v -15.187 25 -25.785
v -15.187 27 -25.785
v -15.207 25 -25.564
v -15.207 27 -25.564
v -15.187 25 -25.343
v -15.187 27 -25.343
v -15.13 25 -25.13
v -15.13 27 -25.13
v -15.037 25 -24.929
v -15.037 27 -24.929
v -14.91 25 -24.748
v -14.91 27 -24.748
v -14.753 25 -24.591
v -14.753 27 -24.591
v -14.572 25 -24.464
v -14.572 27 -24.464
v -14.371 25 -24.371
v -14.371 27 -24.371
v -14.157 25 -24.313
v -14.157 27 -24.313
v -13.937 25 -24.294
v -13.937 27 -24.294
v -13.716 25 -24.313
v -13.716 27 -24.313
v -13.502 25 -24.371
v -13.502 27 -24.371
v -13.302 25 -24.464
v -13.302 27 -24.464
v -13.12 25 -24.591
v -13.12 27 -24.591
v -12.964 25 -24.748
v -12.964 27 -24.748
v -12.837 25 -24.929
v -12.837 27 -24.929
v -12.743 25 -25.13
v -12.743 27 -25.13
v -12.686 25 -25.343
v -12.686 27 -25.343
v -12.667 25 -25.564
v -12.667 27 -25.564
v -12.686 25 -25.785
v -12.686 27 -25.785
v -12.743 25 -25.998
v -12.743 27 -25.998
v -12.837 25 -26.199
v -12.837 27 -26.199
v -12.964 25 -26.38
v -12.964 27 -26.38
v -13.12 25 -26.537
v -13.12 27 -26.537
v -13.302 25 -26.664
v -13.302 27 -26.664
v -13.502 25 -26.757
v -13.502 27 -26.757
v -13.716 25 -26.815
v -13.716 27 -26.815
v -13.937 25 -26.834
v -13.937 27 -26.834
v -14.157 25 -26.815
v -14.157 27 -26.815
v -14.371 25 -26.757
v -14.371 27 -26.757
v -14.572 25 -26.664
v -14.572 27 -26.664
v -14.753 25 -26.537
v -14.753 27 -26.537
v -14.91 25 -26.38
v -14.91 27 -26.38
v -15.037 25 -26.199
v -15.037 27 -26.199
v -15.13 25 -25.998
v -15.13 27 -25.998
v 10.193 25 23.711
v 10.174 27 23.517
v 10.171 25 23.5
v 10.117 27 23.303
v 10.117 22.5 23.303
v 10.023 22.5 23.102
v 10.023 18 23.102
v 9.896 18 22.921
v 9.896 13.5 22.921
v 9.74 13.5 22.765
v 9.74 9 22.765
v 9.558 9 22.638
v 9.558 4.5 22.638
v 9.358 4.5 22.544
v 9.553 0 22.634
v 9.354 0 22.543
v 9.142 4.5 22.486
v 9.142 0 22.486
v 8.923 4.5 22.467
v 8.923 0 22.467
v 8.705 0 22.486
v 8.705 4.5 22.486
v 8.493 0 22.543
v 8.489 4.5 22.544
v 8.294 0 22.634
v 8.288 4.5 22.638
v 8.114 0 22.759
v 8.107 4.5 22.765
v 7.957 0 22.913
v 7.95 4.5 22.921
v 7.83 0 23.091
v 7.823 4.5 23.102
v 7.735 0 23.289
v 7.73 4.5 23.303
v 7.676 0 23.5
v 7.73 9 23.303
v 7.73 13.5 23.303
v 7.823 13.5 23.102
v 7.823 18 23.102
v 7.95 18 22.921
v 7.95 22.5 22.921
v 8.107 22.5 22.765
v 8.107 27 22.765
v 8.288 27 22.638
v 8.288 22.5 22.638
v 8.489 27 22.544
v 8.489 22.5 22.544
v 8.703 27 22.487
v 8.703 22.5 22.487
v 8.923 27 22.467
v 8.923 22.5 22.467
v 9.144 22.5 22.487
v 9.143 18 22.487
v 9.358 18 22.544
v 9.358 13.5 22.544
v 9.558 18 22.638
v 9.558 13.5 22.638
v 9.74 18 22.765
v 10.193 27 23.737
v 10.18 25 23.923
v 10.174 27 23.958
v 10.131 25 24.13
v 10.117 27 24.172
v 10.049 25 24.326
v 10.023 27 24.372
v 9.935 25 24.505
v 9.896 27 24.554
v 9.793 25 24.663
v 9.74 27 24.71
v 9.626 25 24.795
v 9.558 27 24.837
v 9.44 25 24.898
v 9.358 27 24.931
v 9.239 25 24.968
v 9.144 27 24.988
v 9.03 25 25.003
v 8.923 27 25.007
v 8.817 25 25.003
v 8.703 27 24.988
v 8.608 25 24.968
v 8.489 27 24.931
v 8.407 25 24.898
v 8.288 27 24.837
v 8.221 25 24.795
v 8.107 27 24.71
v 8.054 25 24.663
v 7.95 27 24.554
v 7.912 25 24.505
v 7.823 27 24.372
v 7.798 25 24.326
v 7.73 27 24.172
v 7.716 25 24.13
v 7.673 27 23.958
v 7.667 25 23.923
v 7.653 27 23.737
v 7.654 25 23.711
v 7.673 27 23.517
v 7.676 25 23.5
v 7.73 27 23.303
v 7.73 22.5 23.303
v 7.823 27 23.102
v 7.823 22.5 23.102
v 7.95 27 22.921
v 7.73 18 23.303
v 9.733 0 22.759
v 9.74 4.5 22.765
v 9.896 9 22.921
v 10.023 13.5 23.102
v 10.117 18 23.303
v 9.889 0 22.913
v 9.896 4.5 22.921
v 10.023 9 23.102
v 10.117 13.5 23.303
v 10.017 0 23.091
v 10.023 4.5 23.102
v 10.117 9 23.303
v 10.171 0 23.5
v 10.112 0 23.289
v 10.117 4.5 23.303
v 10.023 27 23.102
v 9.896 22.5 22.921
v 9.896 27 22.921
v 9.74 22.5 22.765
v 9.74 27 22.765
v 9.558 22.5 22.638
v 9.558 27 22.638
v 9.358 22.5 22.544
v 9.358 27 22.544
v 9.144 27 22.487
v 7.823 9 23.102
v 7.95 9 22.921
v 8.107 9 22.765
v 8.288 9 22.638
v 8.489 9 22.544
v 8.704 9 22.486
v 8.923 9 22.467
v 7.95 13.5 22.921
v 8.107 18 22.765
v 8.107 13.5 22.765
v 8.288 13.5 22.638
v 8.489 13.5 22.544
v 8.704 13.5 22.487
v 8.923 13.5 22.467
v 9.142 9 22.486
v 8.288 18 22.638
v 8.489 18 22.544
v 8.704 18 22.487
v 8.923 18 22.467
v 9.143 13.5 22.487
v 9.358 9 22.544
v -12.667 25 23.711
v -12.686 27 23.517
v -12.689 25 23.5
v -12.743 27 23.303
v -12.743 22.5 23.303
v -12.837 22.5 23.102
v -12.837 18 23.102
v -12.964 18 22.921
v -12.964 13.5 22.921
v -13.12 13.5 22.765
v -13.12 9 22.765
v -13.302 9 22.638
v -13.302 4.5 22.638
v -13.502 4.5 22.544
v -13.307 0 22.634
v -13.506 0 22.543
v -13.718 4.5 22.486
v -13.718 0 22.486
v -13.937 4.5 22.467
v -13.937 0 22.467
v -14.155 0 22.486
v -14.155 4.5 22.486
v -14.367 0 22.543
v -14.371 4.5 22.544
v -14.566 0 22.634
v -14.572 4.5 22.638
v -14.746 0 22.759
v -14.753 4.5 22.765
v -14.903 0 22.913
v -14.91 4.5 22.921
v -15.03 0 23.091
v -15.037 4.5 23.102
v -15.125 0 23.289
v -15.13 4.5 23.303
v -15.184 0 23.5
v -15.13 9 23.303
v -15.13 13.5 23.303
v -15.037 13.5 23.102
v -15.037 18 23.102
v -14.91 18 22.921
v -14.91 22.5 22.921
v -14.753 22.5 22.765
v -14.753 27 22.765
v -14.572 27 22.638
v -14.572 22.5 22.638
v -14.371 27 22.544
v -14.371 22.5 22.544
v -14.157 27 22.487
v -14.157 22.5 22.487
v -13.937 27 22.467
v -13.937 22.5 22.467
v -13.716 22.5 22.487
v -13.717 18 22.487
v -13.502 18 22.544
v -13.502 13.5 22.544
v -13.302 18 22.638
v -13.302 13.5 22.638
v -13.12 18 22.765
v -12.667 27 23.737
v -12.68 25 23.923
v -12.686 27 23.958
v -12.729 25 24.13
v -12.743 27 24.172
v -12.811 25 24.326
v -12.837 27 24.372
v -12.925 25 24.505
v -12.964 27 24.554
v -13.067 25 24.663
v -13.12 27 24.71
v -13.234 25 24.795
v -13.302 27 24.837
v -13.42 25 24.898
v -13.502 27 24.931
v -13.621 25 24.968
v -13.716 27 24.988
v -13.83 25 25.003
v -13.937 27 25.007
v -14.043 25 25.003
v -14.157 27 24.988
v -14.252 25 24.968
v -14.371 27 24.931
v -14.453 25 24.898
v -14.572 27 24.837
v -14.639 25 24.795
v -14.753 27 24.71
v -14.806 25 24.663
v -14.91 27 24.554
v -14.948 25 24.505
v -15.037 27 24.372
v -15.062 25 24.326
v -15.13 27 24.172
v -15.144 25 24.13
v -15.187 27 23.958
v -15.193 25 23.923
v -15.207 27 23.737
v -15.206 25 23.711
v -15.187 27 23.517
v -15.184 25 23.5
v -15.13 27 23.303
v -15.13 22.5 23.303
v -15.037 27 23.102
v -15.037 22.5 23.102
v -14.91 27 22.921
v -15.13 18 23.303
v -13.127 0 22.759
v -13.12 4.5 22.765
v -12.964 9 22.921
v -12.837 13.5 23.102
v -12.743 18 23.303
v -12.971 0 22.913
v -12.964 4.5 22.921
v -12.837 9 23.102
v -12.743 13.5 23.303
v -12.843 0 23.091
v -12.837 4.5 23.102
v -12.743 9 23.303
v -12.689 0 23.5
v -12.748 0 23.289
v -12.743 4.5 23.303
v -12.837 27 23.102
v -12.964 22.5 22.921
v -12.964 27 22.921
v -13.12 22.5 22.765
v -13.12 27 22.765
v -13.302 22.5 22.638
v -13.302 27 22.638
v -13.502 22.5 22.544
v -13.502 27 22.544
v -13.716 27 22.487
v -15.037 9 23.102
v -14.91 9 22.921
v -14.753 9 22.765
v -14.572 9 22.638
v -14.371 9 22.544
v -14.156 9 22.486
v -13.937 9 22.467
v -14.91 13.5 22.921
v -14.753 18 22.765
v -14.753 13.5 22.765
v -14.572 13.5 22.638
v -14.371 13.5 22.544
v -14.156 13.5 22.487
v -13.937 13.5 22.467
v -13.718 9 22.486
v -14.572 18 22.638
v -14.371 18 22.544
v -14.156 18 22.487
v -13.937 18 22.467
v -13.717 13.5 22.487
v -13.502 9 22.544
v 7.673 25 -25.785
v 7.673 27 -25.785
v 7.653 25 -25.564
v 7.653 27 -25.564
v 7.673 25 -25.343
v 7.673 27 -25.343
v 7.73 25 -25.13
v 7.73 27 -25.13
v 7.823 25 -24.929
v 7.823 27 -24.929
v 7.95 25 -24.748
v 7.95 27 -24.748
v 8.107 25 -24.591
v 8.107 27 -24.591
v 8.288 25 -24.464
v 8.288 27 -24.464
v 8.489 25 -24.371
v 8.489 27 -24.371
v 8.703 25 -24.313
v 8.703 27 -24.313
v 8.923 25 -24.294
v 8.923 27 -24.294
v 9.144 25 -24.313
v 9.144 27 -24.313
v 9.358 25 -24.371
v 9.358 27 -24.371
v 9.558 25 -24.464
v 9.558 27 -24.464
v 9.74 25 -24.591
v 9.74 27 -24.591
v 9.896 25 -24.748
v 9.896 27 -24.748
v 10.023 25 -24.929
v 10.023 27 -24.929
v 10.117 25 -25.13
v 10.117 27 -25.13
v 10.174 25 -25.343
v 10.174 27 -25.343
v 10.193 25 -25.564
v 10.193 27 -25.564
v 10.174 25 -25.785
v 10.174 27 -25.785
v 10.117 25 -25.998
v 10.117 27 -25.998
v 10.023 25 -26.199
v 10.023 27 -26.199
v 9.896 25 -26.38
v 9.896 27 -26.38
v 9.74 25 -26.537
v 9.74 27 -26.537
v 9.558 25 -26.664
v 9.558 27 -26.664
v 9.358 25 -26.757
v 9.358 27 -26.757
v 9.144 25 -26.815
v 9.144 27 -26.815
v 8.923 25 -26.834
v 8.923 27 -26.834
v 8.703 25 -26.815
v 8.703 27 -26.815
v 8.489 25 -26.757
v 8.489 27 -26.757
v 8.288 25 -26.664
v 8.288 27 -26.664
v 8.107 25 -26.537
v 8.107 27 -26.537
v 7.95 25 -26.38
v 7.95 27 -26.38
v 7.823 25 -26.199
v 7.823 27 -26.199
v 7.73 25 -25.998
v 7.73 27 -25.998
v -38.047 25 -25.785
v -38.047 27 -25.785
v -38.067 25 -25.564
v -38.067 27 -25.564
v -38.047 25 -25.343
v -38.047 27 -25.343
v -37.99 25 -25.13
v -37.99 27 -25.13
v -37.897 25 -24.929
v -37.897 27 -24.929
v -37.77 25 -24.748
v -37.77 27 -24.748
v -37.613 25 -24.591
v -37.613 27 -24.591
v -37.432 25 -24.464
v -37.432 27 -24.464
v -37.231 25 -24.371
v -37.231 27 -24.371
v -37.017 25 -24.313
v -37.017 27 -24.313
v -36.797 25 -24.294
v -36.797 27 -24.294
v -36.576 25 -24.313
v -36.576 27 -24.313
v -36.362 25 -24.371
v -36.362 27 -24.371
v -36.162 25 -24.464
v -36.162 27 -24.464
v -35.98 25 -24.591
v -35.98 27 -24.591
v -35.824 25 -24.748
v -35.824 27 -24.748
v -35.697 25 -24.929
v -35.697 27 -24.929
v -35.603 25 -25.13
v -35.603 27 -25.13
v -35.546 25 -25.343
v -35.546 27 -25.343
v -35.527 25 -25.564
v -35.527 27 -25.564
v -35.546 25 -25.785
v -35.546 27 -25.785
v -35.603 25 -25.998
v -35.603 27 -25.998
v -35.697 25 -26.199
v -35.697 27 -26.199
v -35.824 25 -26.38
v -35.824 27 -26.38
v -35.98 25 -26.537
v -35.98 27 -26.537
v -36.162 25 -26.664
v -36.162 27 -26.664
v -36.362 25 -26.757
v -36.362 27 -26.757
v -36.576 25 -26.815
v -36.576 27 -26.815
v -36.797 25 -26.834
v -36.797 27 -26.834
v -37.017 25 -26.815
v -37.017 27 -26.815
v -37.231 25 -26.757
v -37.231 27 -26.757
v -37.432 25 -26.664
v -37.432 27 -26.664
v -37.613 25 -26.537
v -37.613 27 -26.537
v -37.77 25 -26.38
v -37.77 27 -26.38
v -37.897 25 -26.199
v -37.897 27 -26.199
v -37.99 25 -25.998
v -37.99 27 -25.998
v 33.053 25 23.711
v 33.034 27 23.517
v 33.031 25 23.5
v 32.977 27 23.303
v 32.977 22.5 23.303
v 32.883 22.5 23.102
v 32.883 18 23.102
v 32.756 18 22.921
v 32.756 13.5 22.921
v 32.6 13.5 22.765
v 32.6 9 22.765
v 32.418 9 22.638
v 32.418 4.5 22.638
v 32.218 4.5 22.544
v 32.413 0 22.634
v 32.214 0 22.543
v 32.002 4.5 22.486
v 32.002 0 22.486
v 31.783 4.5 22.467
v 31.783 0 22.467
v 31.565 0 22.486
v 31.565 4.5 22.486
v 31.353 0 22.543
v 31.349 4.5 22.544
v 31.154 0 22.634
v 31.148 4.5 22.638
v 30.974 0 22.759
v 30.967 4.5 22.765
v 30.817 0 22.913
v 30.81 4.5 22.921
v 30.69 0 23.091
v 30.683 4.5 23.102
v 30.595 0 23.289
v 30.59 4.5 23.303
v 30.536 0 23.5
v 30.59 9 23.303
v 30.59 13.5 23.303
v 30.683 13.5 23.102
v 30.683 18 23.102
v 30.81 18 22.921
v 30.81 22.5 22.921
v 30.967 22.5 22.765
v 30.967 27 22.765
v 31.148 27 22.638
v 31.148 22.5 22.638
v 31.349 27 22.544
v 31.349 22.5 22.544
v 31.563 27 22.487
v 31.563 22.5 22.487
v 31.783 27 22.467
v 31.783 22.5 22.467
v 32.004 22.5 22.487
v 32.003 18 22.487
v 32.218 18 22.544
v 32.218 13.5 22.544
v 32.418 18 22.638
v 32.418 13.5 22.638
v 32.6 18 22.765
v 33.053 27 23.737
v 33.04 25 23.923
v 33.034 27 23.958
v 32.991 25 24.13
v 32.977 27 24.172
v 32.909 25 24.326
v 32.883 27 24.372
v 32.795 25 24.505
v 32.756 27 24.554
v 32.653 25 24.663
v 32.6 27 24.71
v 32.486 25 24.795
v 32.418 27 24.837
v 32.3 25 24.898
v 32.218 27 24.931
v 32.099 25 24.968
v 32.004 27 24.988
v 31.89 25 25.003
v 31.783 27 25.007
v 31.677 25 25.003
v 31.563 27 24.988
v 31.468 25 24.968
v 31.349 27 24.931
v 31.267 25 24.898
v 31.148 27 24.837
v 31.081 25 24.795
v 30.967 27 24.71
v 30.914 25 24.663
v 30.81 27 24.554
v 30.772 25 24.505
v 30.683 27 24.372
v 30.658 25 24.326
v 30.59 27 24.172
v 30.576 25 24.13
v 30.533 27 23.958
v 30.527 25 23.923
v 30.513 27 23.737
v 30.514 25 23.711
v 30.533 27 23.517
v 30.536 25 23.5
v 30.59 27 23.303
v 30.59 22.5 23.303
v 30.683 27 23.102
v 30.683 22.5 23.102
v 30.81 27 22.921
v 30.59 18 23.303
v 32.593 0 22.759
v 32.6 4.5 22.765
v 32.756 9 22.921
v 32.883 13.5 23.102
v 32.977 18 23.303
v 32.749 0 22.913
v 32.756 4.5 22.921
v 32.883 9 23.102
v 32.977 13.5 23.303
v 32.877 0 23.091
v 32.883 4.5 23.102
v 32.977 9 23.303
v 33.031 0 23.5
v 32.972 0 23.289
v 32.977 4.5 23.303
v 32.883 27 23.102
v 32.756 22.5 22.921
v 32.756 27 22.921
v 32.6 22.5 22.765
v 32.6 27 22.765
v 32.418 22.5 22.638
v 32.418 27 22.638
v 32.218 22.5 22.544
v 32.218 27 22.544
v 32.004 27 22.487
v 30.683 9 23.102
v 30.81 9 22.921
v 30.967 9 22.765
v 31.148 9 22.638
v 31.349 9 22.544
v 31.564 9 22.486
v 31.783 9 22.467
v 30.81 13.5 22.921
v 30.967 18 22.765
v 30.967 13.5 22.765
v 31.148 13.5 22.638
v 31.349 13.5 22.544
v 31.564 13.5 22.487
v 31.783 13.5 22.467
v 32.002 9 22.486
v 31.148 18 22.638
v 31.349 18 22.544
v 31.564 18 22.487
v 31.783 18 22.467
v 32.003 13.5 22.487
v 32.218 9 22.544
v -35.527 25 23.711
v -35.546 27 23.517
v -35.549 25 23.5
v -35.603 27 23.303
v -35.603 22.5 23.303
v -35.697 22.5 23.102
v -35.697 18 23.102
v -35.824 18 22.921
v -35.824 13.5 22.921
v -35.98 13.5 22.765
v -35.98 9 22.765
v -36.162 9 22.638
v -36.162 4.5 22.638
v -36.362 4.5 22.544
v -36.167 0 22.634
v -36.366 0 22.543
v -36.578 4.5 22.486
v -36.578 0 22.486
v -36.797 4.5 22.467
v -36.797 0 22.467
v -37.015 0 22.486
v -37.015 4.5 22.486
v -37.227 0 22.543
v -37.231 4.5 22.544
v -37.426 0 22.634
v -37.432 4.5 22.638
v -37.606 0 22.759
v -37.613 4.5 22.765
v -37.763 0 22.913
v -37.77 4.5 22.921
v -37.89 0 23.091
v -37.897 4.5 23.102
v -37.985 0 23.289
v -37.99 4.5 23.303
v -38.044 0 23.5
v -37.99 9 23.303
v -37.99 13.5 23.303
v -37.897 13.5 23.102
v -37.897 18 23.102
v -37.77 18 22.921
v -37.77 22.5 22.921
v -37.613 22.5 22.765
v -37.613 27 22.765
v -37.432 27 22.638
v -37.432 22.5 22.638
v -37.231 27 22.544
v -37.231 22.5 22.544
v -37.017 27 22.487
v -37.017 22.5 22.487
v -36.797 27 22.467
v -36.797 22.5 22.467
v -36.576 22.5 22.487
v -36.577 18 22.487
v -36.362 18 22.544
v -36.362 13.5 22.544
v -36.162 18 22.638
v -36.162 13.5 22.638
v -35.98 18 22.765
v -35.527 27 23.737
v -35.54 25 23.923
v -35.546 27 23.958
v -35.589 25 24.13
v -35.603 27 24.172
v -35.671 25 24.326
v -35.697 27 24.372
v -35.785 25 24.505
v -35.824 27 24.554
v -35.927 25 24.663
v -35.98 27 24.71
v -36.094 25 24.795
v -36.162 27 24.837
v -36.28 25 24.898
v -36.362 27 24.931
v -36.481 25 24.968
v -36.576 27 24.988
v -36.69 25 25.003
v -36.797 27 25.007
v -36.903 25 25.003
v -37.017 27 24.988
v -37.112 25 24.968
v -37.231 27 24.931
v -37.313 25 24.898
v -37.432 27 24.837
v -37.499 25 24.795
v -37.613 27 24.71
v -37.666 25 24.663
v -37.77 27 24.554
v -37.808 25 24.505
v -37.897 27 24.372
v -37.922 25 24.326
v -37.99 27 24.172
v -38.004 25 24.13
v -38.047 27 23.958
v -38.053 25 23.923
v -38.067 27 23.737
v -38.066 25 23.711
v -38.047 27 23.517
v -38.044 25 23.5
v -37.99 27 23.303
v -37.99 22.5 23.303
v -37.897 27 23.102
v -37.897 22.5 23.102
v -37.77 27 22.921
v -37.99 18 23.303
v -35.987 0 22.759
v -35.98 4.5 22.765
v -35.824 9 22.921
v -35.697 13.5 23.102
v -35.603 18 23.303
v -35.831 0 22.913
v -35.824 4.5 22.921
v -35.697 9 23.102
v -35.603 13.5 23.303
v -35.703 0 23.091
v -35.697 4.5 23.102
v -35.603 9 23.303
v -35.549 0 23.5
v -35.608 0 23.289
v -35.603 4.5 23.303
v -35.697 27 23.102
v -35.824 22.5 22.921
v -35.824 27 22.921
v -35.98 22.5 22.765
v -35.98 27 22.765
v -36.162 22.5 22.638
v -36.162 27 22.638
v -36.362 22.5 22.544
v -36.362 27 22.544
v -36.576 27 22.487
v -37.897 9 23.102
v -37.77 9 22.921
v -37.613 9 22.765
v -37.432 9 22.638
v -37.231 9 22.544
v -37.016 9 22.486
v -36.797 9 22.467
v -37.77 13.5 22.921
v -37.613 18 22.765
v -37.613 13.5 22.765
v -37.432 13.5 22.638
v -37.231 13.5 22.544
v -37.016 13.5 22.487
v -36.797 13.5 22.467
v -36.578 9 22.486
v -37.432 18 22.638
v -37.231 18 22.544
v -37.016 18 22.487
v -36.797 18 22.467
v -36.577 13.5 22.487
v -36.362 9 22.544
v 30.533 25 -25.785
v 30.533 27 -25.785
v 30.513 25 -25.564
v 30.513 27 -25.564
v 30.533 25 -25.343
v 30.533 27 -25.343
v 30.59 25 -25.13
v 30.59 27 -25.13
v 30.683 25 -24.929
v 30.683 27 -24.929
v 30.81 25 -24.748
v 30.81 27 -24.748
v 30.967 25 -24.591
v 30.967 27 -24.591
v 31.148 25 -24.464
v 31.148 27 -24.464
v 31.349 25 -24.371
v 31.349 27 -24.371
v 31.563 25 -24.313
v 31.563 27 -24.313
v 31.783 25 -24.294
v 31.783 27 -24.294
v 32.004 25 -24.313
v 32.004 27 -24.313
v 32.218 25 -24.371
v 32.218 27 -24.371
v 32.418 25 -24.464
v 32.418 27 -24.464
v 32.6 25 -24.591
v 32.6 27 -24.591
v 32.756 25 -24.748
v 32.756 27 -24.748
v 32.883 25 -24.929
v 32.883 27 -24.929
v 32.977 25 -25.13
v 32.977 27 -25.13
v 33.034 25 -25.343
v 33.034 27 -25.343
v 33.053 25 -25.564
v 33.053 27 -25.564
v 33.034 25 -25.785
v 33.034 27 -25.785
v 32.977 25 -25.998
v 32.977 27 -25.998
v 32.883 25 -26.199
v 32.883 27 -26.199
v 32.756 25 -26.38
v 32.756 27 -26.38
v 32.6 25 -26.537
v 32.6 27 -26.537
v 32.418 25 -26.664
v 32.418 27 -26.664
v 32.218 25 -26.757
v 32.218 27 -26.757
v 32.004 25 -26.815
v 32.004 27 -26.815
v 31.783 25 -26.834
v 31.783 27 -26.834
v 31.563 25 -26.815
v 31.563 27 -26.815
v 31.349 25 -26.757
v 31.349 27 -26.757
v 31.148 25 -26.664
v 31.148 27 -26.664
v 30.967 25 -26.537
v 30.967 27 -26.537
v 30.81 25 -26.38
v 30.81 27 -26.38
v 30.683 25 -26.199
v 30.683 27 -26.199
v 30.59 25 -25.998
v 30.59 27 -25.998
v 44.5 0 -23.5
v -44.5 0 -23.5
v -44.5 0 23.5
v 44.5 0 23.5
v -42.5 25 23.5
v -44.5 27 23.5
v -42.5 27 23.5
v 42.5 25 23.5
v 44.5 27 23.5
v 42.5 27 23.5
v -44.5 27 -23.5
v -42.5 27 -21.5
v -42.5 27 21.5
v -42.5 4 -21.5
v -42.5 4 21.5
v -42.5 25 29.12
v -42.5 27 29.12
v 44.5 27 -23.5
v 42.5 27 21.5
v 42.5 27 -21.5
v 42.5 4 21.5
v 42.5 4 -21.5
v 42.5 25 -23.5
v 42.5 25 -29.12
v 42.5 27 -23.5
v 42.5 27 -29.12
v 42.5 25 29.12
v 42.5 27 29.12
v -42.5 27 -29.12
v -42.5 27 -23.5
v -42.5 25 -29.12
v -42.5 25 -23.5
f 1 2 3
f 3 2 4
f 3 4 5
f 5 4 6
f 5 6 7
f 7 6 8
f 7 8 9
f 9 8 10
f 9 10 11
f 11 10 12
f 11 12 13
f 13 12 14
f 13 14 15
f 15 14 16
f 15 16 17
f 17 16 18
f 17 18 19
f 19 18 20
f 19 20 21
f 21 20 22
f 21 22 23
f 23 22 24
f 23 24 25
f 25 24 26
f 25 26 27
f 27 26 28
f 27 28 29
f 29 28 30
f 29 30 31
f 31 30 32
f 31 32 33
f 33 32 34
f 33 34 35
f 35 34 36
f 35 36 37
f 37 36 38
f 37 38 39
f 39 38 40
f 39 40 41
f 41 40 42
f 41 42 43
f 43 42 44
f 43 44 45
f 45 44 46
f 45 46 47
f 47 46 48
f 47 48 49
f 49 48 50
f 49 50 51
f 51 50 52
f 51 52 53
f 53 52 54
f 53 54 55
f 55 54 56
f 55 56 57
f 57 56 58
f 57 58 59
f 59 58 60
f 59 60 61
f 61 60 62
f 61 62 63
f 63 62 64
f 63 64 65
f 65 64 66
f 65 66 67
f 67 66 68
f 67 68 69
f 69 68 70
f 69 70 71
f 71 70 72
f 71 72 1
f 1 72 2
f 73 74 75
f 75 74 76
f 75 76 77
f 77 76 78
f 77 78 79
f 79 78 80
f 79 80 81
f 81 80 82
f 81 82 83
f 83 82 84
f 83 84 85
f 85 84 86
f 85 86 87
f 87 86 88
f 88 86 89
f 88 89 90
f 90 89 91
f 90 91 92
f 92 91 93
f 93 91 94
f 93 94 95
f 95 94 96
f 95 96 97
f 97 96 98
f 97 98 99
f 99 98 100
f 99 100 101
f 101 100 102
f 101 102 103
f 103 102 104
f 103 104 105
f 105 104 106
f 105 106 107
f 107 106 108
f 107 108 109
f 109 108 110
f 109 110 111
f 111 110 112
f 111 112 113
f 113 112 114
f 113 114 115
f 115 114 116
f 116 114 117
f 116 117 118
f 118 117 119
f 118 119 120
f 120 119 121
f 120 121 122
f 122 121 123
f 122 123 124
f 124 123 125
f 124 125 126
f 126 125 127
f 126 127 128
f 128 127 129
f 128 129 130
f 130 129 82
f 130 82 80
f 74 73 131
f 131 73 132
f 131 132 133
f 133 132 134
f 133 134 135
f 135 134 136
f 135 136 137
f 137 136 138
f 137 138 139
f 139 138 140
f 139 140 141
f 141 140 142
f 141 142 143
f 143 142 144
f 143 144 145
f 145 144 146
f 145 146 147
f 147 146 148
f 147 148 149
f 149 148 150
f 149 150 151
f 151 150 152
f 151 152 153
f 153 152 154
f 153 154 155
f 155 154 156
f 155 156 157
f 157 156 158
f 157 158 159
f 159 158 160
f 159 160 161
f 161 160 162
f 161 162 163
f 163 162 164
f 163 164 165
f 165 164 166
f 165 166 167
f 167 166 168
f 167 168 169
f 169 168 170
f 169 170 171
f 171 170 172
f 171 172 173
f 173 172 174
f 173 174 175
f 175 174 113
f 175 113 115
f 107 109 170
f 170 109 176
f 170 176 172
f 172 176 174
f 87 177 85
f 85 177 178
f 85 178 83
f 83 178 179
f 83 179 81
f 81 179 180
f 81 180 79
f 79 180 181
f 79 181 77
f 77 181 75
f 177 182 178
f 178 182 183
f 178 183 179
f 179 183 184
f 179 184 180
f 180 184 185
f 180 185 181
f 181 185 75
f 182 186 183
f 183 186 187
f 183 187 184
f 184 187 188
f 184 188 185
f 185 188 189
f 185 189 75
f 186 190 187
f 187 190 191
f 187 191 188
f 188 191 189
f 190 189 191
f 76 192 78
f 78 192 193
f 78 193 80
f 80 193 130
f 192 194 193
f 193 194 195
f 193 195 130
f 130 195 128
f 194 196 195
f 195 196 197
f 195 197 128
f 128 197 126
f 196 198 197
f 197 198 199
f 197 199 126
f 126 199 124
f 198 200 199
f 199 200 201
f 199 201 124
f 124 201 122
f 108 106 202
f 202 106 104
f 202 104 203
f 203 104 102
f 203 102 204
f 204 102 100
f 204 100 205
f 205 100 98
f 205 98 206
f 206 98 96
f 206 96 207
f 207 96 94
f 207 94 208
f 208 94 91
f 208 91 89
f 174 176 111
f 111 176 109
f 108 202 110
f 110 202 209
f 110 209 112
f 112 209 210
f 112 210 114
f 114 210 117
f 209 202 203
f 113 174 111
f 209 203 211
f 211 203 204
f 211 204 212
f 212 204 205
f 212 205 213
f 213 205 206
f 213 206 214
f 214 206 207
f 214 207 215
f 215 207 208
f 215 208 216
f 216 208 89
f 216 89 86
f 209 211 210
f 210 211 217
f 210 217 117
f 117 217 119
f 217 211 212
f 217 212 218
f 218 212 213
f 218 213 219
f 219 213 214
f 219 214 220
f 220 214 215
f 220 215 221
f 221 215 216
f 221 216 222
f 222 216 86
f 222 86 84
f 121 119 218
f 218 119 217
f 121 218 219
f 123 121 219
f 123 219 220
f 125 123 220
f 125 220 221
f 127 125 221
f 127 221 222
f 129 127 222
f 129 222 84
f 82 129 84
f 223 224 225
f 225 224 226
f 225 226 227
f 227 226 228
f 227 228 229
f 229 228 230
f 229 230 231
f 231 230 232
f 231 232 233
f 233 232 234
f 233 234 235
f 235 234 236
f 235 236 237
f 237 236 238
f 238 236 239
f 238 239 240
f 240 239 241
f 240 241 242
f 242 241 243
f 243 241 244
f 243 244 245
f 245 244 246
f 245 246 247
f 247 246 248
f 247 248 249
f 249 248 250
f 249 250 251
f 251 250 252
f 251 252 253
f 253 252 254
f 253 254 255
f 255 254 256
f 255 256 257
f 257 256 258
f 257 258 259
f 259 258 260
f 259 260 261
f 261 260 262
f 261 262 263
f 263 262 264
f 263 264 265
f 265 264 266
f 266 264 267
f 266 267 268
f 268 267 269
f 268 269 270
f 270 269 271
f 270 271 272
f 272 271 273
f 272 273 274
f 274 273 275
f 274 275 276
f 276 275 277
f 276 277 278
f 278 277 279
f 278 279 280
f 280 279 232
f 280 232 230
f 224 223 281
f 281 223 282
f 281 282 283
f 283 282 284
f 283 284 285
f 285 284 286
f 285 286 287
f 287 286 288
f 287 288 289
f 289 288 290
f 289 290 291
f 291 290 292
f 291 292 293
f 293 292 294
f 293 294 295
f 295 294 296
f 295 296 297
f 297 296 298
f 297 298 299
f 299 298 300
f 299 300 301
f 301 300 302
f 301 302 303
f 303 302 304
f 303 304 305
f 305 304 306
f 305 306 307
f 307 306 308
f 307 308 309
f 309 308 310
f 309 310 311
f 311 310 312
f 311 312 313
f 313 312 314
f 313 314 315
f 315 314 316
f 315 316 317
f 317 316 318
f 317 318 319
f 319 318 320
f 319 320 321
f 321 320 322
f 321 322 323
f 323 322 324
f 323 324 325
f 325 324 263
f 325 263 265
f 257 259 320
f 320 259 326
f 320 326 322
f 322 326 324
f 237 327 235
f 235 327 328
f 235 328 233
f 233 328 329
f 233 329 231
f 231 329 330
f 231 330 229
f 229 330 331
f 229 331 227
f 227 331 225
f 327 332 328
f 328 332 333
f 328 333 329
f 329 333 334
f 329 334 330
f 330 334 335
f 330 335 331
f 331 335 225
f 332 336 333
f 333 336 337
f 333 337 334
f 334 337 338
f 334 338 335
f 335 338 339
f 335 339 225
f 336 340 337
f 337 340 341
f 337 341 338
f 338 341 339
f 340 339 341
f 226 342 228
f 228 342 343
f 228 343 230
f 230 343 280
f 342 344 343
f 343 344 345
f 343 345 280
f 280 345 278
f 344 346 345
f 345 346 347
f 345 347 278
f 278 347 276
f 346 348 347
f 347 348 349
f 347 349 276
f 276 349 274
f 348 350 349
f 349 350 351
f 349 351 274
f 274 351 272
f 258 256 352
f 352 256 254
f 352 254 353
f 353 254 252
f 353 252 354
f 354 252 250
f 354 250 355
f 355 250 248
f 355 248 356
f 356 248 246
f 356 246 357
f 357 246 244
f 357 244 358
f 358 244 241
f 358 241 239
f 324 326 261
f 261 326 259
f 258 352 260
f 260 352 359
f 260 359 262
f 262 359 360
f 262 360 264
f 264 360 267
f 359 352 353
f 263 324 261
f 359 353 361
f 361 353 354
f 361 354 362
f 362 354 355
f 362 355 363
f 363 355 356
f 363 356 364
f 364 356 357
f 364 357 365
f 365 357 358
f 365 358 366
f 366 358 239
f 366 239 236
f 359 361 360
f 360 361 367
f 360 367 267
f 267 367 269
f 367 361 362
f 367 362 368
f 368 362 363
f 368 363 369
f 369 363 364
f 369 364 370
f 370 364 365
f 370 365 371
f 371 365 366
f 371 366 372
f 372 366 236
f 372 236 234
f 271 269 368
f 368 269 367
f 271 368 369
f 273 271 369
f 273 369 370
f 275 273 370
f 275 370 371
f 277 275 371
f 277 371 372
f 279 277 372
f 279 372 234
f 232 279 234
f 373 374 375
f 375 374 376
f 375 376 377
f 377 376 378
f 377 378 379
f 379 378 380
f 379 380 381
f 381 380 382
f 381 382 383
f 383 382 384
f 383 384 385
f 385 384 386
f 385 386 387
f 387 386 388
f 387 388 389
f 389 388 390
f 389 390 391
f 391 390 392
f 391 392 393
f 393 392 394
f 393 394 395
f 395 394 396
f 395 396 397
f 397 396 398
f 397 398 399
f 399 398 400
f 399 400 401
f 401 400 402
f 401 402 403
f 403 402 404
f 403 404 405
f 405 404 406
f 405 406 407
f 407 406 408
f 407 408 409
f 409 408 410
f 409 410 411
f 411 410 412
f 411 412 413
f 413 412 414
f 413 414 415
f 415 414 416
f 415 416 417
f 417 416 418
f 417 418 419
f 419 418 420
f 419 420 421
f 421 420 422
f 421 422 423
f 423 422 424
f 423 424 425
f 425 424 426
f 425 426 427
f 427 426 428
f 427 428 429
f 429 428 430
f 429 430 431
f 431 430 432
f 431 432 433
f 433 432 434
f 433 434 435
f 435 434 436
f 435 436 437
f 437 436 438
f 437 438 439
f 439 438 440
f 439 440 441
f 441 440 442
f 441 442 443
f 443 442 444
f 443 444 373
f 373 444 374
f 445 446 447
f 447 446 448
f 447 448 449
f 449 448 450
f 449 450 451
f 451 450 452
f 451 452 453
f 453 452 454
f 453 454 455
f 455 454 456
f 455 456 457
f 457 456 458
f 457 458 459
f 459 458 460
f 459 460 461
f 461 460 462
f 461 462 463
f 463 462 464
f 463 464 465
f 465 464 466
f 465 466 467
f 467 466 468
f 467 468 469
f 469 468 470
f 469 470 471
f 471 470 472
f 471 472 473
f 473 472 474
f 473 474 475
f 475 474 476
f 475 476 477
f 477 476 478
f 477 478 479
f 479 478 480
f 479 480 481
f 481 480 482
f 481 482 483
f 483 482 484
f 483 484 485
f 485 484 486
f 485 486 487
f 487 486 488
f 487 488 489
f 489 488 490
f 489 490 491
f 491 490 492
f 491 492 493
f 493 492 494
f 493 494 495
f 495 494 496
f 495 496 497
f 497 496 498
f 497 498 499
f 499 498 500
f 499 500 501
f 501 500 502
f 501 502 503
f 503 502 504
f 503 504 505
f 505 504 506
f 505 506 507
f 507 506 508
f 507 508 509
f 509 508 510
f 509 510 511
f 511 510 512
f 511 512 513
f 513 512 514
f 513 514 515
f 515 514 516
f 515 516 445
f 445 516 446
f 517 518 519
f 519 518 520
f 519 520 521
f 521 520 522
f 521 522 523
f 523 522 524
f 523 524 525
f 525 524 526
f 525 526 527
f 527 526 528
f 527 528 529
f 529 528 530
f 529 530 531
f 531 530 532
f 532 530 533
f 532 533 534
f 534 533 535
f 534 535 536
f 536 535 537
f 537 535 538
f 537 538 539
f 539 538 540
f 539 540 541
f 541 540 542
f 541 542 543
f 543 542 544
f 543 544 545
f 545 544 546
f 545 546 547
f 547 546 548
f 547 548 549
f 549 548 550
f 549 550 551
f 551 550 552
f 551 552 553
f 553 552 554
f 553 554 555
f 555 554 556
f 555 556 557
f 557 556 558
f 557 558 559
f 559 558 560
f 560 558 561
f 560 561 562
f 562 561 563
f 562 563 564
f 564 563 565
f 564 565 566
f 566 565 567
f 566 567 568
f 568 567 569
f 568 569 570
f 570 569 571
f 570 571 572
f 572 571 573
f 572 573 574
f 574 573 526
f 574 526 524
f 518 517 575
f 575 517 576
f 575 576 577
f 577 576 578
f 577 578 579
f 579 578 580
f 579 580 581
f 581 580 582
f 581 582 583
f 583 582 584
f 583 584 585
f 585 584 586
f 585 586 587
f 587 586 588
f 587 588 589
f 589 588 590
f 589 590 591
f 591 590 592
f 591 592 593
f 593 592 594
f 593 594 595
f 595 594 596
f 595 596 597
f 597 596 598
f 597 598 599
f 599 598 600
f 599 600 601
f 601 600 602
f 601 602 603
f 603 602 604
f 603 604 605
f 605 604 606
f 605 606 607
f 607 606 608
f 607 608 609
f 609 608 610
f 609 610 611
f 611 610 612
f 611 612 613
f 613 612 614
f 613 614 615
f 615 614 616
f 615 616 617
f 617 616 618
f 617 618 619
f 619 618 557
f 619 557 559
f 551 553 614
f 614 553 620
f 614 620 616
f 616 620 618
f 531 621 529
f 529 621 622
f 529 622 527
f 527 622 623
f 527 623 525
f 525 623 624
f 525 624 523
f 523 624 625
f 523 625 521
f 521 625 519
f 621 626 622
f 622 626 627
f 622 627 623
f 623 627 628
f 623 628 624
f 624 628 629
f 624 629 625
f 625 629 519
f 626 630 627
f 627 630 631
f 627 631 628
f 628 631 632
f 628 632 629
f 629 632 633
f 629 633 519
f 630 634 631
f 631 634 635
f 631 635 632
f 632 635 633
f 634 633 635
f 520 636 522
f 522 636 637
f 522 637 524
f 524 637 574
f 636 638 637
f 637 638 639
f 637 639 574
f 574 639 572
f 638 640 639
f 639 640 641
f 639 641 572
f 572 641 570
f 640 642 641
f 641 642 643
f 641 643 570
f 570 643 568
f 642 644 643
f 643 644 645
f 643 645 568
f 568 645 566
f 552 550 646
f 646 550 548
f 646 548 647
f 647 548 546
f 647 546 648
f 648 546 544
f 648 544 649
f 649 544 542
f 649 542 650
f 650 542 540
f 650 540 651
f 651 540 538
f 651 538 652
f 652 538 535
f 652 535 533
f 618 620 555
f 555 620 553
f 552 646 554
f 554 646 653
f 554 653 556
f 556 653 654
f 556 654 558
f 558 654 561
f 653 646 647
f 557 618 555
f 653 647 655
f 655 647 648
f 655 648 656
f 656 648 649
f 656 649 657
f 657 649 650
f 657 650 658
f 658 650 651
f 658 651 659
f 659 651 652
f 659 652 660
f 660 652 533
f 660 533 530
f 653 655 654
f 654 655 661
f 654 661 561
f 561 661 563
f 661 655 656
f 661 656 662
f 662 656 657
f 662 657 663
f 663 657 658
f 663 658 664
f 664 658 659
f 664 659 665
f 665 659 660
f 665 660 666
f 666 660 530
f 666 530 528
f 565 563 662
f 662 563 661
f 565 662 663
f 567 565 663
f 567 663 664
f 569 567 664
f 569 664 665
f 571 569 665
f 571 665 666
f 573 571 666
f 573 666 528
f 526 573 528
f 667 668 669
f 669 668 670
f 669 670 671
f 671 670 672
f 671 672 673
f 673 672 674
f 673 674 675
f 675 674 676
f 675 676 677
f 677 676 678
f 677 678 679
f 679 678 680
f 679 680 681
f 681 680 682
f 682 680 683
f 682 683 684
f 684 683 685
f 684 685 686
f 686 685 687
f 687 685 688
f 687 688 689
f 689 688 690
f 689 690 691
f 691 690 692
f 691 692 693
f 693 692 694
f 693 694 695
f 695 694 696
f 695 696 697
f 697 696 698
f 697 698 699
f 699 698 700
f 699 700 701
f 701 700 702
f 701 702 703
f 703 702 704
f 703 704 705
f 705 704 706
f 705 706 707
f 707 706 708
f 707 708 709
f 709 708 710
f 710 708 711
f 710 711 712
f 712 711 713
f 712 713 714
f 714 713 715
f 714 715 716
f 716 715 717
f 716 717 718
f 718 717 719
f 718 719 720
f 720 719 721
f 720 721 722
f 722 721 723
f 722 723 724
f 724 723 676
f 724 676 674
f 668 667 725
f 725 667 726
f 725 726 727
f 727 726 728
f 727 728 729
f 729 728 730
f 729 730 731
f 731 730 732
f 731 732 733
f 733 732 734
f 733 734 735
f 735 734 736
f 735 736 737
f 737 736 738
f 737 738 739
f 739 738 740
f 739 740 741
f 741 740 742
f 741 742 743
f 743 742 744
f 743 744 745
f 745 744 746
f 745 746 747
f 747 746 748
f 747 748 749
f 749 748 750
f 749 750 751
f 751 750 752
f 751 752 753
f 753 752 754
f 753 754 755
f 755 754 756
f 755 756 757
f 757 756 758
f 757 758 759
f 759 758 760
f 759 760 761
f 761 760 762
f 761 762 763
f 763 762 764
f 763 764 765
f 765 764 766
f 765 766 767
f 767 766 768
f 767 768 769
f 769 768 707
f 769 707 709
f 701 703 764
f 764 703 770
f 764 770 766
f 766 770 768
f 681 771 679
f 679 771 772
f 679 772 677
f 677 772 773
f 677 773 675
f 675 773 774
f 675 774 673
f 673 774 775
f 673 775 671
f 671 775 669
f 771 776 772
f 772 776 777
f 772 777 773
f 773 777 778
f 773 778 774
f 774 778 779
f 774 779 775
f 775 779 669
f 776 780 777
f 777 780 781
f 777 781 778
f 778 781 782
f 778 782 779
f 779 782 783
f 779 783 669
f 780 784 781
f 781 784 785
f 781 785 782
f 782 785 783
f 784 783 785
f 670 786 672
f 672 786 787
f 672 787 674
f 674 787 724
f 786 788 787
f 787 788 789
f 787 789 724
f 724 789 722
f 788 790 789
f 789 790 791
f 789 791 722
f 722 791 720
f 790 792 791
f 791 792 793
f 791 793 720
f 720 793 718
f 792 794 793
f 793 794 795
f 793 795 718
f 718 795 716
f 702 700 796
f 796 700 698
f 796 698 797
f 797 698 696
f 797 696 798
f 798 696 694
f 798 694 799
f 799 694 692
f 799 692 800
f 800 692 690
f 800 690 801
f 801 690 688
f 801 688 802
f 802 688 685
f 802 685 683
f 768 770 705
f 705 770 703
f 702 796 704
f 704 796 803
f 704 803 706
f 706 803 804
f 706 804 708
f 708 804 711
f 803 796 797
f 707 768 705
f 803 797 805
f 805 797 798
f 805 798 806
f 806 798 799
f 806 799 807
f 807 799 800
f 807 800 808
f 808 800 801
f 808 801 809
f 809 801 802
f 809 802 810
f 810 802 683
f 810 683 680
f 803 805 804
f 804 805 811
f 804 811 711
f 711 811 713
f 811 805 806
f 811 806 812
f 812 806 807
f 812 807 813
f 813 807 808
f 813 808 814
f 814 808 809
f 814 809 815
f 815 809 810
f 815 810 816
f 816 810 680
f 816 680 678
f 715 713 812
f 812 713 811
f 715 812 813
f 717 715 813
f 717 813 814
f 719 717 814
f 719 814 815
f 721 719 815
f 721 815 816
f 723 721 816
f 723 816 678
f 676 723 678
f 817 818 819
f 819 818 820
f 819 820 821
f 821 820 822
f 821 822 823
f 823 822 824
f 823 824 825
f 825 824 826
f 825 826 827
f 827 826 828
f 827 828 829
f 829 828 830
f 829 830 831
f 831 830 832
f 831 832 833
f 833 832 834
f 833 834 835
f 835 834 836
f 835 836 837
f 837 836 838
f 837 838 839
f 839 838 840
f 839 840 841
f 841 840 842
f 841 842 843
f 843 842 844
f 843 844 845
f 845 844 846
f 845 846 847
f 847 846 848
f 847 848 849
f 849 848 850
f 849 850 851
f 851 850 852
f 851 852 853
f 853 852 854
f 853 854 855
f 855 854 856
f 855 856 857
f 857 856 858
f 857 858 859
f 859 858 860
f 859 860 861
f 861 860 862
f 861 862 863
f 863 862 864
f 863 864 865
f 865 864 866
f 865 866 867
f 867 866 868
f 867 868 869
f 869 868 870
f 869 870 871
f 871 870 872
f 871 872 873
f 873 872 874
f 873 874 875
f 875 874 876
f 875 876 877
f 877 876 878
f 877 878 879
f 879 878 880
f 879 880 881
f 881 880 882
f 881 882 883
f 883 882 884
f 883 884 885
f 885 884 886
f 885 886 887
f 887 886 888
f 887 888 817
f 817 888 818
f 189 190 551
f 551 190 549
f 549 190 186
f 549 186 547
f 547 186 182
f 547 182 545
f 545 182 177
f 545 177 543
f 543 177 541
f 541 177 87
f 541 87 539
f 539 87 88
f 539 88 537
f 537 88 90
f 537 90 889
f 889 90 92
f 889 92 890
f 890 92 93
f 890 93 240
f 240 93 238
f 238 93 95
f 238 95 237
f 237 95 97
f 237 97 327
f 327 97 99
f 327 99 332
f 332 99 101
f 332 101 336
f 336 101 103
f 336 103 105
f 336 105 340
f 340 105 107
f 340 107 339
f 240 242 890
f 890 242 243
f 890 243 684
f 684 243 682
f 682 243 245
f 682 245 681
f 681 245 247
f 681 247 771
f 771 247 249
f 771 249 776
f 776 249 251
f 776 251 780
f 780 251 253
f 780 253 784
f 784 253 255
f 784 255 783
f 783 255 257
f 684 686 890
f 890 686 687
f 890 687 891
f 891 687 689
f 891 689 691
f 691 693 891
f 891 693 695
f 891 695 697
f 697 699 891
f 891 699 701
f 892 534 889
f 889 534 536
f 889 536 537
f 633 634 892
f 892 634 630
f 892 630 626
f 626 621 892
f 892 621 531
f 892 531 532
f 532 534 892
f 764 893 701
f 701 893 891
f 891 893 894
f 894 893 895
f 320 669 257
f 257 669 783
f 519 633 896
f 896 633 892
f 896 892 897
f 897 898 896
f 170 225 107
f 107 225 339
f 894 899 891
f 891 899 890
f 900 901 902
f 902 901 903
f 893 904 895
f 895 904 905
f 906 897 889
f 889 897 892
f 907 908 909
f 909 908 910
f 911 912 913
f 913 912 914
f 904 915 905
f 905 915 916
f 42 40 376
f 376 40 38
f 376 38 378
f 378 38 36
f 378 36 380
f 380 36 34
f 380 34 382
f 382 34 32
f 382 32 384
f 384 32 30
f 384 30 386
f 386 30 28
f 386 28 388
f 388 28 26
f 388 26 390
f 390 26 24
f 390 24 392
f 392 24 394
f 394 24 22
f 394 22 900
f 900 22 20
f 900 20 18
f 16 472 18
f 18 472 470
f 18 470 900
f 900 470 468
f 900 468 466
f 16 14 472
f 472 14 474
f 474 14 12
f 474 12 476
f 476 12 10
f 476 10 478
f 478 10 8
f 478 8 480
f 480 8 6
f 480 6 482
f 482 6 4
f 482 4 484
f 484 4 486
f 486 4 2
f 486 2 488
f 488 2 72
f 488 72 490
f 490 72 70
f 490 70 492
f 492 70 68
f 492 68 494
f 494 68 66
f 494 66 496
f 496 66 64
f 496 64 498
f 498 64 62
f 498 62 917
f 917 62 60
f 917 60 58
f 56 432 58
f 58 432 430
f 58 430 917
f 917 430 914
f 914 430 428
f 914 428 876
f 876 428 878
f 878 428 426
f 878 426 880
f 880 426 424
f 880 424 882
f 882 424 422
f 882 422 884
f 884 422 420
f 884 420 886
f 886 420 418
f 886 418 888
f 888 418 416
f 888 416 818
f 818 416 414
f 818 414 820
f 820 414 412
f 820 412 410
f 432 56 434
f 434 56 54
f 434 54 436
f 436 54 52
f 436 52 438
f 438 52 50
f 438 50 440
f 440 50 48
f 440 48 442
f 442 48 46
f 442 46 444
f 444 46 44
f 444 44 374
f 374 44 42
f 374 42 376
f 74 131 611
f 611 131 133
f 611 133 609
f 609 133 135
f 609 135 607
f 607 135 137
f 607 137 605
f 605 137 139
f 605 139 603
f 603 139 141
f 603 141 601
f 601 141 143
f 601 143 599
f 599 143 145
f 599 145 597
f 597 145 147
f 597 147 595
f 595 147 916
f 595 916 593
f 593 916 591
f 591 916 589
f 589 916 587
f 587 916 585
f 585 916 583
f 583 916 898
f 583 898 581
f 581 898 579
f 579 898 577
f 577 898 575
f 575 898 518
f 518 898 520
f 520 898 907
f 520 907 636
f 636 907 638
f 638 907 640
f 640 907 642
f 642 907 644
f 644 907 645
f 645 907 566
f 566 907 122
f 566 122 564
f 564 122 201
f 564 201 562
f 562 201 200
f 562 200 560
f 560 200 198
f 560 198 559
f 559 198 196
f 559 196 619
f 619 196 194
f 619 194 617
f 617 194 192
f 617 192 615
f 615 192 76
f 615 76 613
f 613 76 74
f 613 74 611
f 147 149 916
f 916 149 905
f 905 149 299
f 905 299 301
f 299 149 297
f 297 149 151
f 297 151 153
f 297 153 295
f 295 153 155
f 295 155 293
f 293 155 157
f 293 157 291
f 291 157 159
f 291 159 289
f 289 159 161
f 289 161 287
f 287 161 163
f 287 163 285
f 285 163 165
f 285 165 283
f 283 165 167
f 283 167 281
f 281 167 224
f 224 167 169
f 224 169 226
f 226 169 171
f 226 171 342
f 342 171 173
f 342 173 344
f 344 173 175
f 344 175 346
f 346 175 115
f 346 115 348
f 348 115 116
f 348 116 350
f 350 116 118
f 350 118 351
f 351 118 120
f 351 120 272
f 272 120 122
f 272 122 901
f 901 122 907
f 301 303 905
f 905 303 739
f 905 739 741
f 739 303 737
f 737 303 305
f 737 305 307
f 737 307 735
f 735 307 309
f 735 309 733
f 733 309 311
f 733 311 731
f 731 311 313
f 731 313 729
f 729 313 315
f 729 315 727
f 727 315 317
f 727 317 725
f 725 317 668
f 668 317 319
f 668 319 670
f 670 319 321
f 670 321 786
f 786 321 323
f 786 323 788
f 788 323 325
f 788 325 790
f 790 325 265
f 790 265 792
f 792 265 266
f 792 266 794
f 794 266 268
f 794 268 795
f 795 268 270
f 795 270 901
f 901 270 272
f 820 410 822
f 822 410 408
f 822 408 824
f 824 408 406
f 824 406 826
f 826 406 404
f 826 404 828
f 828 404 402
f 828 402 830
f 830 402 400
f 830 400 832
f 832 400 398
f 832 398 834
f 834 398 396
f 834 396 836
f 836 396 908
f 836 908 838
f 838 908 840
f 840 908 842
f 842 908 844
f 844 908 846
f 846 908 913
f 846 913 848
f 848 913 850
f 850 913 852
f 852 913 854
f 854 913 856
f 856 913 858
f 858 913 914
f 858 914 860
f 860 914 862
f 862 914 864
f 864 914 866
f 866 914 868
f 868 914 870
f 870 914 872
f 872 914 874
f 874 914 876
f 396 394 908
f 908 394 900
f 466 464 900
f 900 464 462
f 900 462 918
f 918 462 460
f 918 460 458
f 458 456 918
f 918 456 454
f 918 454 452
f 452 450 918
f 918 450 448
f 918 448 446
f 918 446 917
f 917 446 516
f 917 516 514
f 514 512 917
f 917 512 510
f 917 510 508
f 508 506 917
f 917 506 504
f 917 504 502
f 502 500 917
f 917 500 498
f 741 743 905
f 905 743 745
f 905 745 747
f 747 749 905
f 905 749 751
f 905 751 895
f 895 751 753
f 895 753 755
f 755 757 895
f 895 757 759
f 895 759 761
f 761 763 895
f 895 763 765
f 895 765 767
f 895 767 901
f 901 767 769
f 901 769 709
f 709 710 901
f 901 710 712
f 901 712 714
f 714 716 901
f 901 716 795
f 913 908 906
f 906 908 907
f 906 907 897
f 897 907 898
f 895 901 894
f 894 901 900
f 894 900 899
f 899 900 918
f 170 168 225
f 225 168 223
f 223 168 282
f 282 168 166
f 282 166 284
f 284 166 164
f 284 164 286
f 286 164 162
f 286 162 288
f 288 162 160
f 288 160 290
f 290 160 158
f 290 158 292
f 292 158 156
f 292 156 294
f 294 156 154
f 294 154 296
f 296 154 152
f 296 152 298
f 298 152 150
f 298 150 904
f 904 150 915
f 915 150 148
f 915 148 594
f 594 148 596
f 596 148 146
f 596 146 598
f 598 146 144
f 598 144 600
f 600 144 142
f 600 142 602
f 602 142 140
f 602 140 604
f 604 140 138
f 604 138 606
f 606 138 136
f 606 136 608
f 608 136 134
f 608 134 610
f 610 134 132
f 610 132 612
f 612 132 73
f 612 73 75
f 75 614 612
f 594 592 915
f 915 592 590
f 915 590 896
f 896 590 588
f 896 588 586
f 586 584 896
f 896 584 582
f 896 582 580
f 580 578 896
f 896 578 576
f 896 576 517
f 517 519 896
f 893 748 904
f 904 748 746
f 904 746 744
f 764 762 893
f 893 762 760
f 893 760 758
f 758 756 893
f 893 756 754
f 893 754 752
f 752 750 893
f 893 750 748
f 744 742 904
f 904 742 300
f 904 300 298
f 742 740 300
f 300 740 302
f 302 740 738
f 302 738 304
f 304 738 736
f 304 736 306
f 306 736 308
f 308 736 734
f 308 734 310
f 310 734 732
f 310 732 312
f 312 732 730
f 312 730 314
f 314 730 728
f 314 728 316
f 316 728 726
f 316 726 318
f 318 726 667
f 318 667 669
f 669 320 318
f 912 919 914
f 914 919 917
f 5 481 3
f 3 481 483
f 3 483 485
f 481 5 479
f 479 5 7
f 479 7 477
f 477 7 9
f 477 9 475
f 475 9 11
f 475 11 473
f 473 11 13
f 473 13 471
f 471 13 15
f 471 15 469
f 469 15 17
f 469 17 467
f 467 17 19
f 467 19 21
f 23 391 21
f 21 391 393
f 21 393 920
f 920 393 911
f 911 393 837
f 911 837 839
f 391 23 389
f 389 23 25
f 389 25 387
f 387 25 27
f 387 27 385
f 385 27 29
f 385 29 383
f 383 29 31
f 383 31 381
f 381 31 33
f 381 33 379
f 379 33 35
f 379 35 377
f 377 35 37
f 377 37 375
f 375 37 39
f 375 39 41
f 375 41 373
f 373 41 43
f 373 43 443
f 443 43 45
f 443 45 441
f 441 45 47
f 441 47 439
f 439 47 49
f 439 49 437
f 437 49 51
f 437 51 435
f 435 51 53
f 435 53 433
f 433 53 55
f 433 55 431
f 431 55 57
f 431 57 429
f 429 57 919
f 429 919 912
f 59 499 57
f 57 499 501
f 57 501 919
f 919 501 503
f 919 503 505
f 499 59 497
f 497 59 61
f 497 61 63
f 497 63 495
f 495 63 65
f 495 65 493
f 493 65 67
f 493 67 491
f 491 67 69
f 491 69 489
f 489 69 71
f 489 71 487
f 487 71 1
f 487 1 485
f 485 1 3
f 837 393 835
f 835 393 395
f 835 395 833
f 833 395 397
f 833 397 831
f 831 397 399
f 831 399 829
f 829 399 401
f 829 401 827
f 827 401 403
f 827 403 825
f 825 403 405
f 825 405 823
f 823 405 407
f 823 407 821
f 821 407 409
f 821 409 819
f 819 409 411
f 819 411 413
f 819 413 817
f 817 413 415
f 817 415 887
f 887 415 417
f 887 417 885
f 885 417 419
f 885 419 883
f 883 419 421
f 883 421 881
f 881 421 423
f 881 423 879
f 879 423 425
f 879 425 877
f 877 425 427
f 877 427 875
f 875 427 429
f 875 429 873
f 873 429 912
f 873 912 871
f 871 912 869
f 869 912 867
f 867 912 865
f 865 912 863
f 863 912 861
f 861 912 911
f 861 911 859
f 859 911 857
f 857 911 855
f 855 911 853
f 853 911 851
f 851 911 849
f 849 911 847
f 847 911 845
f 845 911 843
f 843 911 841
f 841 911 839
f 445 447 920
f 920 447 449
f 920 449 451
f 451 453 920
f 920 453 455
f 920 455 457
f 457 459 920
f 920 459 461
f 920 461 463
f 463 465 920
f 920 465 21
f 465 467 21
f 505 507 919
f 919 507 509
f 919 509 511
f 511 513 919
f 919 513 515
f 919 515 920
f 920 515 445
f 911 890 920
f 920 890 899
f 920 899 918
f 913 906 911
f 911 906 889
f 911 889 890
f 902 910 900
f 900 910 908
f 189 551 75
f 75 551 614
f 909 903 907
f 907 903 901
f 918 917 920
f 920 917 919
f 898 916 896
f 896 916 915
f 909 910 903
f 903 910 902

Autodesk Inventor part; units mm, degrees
ref_plane "YZ Plane" through (0, 0, 0) normal (1, 0, 0) x (0, 1, 0)
ref_plane "XZ Plane" through (0, 0, 0) normal (0, 1, 0) x (-1, 0, 0)
ref_plane "XY Plane" through (0, 0, 0) normal (0, 0, 1) x (1, 0, 0)
sketch "Sketch1" plane through (0, 0, 0) normal (0, 1, 0) x (-1, 0, 0)
  line L0 (42.5, 21.5) -> (-42.5, 21.5)
  line L1 (-42.5, 21.5) -> (-42.5, -21.5)
  line L2 (-42.5, -21.5) -> (42.5, -21.5)
  line L3 (42.5, -21.5) -> (42.5, 21.5)
  point P0 (0, 0)
  point P1 (0, -21.5)
  point P2 (42.5, 0)
  dimension "d0" = 43
  dimension "d1" = 85
extrude "Extrusion1" add sketch "Sketch1" along normal blind 4
sketch "Sketch2" plane through (-42.5, 0, 21.5) normal (0, 0, 1) x (1, 0, 0)
  line L0 (0, 25) -> (85, 25)
  line L1 (85, 25) -> (85, 0)
  line L2 (85, 0) -> (0, 0)
  line L3 (0, 0) -> (0, 25)
  point P0 (42.5, 0)
  dimension "d4" = 25
extrude "Extrusion2" add sketch "Sketch2" along normal blind 2
sketch "Sketch3" plane through (42.5, 0, -21.5) normal (0, 0, -1) x (-1, 0, 0)
  line L0 (0, 25) -> (85, 25) projected
  line L1 (0, 0) -> (85, 0) projected
  line L2 (0, 25) -> (85, 25)
  line L3 (85, 25) -> (85, 0)
  line L4 (85, 0) -> (0, 0)
  line L5 (0, 0) -> (0, 25)
  point P0 (42.5, 0)
extrude "Extrusion3" add sketch "Sketch3" along normal blind 2
sketch "Sketch4" plane through (-42.5, 25, -21.5) normal (0, 1, 0) x (1, 0, 0)
  line L0 (0, -45) -> (0, 2) projected
  line L1 (0, 7.62) -> (85, 7.62)
  line L2 (85, 7.62) -> (85, 0)
  line L3 (85, 0) -> (0, 0)
  line L4 (0, 0) -> (0, 7.62)
  point P0 (42.5, -21.5)
  point P1 (85, 3.81)
  point P2 (85, 2)
  dimension "d15" = 7.62
extrude "Extrusion4" add sketch "Sketch4" along normal blind 2
sketch "Sketch5" plane through (-42.5, 25, 21.5) normal (0, 1, 0) x (1, 0, 0)
  line L0 (0, -2) -> (0, 45) projected
  line L1 (0, 0) -> (85, 0)
  line L2 (85, 0) -> (85, -7.62)
  line L3 (85, -7.62) -> (0, -7.62)
  line L4 (0, -7.62) -> (0, 0)
  line L5 (85, 0) -> (85, -2) projected
  line L6 (85, 0) -> (0, 0) projected
  point P0 (42.5, 21.5)
  point P1 (85, -3.81)
  point P2 (85, -1)
  point P3 (42.5, 0)
  dimension "d17" = 7.62
extrude "Extrusion5" add sketch "Sketch5" along normal blind 2
sketch "Sketch6" plane through (42.5, 0, 23.5) normal (1, 0, 0) x (0, 0, -1)
  line L0 (-5.62, 27) -> (2, 27) projected
  line L1 (47, 0) -> (47, 25) projected
  line L2 (0, 27) -> (47, 27)
  line L3 (47, 27) -> (47, 0)
  line L4 (47, 0) -> (0, 0)
  line L5 (0, 0) -> (0, 27)
  line L6 (0, 0) -> (0, 25) projected
  point P0 (23.5, 0)
  point P1 (0, 13.5)
extrude "Extrusion6" add sketch "Sketch6" along normal blind 2
sketch "Sketch7" plane through (-42.5, 0, -23.5) normal (-1, 0, 0) x (0, 0, 1)
  line L0 (-5.62, 27) -> (2, 27) projected
  line L1 (47, 25) -> (47, 0) projected
  line L2 (0, 27) -> (47, 27)
  line L3 (47, 27) -> (47, 0)
  line L4 (47, 0) -> (0, 0)
  line L5 (0, 0) -> (0, 27)
  line L6 (0, 0) -> (0, 25) projected
  point P0 (23.5, 0)
  point P1 (0, 12.5)
extrude "Extrusion7" add sketch "Sketch7" along normal blind 2
sketch "Sketch8" plane through (-42.5, 27, -21.5) normal (0, 1, 0) x (1, 0, 0)
  circle A0 centre (74.2833, 4.064) radius 1.27
  line L0 (0, 0) -> (85, 0) projected
  circle A1 centre (51.4233, 4.064) radius 1.27
  circle A2 centre (28.5633, 4.064) radius 1.27
  circle A3 centre (5.7033, 4.064) radius 1.27
  line L1 (95.5719, -20.5867) -> (-13.3282, -20.5867)
  circle A4 centre (74.2833, -45.2374) radius 1.27
  circle A5 centre (51.4233, -45.2374) radius 1.27
  circle A6 centre (28.5633, -45.2374) radius 1.27
  circle A7 centre (5.7033, -45.2374) radius 1.27
  point P0 (42.5, -21.5)
  dimension "d23" = 2.54
  dimension "d24" = 4.064
  dimension "d27" = 22.86
  dimension "d34" = 49.3014
extrude "Extrusion8" cut sketch "Sketch8" against normal through all
properties part number "pruebabateria"
